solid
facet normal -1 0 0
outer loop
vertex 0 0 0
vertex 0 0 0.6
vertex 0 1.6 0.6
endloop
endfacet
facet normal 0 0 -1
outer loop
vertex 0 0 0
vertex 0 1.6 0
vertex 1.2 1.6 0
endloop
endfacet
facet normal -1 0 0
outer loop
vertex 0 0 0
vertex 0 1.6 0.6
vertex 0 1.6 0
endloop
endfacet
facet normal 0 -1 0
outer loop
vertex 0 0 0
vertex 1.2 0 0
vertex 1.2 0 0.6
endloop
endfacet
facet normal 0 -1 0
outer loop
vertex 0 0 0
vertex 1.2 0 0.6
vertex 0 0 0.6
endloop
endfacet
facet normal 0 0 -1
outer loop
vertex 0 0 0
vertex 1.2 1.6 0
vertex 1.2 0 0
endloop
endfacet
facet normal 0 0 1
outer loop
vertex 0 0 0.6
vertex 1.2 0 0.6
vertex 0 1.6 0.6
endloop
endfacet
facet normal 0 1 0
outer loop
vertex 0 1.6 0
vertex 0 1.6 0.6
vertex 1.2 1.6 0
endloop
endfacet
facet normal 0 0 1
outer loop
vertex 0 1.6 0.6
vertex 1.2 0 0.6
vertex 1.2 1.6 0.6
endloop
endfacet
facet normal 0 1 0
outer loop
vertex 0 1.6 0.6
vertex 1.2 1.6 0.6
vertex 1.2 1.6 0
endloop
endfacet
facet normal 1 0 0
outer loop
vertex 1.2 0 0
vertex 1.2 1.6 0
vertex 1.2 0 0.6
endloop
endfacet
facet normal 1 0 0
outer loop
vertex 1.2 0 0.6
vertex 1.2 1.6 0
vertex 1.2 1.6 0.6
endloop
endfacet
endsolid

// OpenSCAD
/* Warning, this is a very basic generator with a lot of approximation 
input data : [UDFN, HGA, 1.2x1.6x0.6mm, 4, , A, C04-01152A]
generated by com.zoubworld.electronics.cad.model3d.Basic
Date : Sun Feb 15 10:50:49 CET 2026
*/

//body
color("black")
translate([0,0,0])
cube([1.2,1.6,0.6], center=false);
